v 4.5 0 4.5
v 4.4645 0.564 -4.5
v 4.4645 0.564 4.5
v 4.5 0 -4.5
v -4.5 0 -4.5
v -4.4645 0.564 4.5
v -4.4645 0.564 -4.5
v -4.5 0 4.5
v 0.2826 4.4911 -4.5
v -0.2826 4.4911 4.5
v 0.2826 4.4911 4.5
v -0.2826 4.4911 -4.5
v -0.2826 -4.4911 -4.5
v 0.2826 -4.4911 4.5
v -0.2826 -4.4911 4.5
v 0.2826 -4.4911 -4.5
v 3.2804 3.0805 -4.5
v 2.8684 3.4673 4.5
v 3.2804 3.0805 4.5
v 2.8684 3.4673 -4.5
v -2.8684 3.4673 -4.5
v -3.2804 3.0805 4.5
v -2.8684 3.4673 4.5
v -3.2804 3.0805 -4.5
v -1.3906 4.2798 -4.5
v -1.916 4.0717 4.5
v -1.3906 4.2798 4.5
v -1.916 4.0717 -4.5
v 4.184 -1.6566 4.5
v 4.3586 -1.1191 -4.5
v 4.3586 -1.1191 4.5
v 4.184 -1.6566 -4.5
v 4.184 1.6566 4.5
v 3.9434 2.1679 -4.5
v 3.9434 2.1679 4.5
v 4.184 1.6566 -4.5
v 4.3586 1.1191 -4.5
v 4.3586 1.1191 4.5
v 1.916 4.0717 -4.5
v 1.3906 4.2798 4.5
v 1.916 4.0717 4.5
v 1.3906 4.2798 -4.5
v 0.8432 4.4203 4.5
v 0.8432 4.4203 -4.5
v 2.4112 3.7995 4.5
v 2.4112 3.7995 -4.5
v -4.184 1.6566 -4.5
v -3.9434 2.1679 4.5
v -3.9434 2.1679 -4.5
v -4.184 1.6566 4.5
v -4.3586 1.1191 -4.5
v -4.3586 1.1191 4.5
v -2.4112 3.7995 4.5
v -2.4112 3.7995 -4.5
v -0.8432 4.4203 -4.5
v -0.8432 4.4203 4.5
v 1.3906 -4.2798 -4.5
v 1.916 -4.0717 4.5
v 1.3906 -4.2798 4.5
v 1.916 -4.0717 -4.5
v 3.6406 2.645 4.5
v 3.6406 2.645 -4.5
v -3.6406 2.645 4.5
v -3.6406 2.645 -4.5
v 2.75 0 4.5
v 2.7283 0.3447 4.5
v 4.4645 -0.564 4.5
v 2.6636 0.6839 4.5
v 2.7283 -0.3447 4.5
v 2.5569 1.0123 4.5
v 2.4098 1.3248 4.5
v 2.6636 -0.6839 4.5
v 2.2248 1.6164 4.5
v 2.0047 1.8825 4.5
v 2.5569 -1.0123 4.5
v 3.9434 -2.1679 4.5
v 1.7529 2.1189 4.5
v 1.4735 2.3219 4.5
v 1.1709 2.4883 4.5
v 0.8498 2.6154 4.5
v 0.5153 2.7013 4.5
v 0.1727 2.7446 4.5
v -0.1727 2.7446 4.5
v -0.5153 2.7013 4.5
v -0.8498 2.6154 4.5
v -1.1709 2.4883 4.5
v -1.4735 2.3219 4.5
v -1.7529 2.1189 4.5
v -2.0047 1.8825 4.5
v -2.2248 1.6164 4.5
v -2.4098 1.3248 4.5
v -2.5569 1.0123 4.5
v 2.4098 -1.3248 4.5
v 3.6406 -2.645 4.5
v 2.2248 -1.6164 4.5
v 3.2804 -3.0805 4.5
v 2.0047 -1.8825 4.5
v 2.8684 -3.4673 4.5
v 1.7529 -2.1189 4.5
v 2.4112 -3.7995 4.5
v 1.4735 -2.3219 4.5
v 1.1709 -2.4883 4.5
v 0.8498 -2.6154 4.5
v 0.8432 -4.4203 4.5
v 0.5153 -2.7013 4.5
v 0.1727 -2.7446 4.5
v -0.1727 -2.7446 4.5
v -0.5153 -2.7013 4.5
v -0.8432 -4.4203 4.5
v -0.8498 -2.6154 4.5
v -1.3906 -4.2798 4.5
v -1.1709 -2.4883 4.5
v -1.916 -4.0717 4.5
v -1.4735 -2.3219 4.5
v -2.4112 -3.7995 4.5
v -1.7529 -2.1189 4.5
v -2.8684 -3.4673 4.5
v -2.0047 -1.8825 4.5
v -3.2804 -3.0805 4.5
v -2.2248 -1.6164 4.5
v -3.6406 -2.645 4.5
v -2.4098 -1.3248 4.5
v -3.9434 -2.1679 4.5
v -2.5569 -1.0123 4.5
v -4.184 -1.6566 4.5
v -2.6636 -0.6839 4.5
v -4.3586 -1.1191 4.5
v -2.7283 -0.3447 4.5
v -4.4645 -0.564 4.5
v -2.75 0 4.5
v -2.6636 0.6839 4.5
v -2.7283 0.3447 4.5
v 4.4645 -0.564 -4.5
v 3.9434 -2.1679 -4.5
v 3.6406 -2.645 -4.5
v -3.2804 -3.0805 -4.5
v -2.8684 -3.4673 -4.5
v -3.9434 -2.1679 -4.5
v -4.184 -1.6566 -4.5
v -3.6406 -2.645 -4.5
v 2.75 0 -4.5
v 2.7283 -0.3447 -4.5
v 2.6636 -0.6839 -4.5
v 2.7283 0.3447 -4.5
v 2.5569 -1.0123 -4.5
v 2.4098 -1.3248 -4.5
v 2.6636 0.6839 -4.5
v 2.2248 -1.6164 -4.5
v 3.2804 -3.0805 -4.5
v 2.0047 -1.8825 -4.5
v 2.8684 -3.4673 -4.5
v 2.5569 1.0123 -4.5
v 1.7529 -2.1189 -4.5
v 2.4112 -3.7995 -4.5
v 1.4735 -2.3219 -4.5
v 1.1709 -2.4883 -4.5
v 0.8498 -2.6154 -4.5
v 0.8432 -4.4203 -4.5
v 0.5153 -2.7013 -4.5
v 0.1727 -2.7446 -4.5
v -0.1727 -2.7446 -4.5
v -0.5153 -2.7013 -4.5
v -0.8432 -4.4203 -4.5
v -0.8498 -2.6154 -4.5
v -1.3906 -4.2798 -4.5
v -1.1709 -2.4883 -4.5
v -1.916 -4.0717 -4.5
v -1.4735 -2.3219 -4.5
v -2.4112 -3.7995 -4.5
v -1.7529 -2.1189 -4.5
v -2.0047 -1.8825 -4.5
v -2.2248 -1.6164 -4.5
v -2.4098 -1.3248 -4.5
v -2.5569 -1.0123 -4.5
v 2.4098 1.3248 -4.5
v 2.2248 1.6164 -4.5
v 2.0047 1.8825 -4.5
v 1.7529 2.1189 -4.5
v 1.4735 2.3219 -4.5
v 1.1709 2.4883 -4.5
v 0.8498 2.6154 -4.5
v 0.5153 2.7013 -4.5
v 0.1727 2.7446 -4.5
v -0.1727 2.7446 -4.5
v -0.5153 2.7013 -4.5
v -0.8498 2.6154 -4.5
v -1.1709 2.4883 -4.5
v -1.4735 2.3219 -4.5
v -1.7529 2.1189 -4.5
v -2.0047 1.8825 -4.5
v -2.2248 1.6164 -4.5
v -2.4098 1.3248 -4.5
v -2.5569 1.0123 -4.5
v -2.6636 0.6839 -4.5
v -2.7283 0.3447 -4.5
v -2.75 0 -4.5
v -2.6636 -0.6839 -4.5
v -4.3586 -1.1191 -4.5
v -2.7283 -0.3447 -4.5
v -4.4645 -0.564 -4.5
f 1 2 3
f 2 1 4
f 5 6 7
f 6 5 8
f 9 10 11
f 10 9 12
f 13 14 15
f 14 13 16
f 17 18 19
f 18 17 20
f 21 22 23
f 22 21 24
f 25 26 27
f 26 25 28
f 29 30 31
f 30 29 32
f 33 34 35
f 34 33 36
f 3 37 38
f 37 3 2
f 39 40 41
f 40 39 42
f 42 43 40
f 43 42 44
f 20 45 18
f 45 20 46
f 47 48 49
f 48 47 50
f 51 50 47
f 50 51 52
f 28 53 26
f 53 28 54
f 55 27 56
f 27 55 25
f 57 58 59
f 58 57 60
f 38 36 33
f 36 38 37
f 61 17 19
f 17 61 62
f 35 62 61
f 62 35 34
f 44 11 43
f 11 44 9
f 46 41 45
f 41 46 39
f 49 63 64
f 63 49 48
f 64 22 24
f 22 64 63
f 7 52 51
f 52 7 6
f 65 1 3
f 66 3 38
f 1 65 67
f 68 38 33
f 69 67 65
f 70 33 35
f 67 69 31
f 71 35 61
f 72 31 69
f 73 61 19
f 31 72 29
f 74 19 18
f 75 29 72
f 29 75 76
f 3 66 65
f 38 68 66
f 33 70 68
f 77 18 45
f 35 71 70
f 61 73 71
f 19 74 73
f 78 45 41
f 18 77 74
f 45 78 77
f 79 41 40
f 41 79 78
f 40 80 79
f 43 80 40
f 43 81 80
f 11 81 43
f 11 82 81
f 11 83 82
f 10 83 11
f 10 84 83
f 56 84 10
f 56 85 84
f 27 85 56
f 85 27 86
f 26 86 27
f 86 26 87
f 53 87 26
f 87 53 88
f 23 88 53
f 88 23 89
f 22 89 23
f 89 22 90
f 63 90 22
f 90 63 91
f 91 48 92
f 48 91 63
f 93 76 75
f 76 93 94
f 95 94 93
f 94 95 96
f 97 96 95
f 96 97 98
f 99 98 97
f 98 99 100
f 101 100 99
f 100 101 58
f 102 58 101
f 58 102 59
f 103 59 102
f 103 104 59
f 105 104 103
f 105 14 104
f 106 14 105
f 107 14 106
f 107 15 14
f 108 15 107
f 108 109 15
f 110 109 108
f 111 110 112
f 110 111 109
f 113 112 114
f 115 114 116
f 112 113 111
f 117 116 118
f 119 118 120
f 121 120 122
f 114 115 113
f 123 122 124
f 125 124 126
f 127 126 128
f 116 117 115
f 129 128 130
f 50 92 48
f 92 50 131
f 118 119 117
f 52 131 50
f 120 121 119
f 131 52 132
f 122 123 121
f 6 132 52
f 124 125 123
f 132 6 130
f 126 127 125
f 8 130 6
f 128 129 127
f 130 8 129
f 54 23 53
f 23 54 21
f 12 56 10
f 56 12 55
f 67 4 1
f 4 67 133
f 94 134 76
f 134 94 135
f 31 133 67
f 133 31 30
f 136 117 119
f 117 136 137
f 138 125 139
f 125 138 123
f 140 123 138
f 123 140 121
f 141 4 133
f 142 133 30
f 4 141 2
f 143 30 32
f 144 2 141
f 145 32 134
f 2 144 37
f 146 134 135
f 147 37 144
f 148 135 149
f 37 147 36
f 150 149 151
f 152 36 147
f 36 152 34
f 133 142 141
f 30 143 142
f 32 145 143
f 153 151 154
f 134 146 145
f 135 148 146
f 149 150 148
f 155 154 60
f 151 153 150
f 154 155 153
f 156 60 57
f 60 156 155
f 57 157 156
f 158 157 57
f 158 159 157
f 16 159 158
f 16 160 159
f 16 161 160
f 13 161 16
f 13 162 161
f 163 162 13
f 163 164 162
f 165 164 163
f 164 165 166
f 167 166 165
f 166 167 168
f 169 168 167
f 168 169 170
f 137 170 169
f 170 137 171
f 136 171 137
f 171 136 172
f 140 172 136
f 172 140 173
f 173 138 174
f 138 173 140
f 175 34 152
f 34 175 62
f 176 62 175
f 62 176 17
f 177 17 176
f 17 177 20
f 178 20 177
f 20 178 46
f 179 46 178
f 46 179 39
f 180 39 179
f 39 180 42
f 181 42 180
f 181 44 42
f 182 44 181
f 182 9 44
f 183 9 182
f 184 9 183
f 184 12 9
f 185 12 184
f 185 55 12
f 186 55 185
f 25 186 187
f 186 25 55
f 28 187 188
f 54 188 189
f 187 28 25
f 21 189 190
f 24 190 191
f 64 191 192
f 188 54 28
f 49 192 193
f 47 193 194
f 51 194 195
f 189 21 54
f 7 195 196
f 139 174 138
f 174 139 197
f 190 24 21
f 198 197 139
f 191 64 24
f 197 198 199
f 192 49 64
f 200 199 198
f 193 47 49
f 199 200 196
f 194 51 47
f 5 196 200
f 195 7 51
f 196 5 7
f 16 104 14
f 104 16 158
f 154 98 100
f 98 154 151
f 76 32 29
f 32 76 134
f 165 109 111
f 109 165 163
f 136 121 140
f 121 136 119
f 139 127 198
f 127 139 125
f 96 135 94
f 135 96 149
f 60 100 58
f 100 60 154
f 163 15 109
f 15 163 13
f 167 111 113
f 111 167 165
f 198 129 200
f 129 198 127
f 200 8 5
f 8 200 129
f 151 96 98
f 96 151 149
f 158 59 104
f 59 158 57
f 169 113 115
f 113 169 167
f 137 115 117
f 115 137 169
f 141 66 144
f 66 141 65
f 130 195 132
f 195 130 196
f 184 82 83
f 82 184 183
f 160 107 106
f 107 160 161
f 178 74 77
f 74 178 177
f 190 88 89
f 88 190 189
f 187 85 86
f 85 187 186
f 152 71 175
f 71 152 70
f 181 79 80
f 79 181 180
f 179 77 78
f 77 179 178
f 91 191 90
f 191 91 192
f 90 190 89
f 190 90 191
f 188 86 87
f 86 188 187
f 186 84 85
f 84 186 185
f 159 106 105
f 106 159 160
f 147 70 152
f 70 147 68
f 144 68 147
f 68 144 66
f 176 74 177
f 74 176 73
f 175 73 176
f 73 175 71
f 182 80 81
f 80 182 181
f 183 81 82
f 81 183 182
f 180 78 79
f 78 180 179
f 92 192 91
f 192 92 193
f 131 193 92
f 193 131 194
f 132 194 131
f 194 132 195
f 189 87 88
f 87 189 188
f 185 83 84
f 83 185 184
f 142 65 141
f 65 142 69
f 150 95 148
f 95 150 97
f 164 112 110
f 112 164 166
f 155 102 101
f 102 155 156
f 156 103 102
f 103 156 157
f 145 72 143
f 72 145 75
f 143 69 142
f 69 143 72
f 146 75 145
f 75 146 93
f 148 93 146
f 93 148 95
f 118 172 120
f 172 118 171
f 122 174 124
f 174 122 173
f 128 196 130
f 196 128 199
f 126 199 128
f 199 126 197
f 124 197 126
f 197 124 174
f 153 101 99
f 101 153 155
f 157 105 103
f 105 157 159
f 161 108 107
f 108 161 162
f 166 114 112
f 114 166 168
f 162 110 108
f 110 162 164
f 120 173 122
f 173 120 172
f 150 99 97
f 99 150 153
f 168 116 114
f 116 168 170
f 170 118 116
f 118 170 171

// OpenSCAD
$fn = 50;


difference() {
	union() {
		translate(v = [0, 0, -4.5000000000]) {
			cylinder(h = 9, r = 4.5000000000);
		}
	}
	union() {
		translate(v = [0, 0, -100.0000000000]) {
			cylinder(h = 200, r = 2.7500000000);
		}
	}
}
